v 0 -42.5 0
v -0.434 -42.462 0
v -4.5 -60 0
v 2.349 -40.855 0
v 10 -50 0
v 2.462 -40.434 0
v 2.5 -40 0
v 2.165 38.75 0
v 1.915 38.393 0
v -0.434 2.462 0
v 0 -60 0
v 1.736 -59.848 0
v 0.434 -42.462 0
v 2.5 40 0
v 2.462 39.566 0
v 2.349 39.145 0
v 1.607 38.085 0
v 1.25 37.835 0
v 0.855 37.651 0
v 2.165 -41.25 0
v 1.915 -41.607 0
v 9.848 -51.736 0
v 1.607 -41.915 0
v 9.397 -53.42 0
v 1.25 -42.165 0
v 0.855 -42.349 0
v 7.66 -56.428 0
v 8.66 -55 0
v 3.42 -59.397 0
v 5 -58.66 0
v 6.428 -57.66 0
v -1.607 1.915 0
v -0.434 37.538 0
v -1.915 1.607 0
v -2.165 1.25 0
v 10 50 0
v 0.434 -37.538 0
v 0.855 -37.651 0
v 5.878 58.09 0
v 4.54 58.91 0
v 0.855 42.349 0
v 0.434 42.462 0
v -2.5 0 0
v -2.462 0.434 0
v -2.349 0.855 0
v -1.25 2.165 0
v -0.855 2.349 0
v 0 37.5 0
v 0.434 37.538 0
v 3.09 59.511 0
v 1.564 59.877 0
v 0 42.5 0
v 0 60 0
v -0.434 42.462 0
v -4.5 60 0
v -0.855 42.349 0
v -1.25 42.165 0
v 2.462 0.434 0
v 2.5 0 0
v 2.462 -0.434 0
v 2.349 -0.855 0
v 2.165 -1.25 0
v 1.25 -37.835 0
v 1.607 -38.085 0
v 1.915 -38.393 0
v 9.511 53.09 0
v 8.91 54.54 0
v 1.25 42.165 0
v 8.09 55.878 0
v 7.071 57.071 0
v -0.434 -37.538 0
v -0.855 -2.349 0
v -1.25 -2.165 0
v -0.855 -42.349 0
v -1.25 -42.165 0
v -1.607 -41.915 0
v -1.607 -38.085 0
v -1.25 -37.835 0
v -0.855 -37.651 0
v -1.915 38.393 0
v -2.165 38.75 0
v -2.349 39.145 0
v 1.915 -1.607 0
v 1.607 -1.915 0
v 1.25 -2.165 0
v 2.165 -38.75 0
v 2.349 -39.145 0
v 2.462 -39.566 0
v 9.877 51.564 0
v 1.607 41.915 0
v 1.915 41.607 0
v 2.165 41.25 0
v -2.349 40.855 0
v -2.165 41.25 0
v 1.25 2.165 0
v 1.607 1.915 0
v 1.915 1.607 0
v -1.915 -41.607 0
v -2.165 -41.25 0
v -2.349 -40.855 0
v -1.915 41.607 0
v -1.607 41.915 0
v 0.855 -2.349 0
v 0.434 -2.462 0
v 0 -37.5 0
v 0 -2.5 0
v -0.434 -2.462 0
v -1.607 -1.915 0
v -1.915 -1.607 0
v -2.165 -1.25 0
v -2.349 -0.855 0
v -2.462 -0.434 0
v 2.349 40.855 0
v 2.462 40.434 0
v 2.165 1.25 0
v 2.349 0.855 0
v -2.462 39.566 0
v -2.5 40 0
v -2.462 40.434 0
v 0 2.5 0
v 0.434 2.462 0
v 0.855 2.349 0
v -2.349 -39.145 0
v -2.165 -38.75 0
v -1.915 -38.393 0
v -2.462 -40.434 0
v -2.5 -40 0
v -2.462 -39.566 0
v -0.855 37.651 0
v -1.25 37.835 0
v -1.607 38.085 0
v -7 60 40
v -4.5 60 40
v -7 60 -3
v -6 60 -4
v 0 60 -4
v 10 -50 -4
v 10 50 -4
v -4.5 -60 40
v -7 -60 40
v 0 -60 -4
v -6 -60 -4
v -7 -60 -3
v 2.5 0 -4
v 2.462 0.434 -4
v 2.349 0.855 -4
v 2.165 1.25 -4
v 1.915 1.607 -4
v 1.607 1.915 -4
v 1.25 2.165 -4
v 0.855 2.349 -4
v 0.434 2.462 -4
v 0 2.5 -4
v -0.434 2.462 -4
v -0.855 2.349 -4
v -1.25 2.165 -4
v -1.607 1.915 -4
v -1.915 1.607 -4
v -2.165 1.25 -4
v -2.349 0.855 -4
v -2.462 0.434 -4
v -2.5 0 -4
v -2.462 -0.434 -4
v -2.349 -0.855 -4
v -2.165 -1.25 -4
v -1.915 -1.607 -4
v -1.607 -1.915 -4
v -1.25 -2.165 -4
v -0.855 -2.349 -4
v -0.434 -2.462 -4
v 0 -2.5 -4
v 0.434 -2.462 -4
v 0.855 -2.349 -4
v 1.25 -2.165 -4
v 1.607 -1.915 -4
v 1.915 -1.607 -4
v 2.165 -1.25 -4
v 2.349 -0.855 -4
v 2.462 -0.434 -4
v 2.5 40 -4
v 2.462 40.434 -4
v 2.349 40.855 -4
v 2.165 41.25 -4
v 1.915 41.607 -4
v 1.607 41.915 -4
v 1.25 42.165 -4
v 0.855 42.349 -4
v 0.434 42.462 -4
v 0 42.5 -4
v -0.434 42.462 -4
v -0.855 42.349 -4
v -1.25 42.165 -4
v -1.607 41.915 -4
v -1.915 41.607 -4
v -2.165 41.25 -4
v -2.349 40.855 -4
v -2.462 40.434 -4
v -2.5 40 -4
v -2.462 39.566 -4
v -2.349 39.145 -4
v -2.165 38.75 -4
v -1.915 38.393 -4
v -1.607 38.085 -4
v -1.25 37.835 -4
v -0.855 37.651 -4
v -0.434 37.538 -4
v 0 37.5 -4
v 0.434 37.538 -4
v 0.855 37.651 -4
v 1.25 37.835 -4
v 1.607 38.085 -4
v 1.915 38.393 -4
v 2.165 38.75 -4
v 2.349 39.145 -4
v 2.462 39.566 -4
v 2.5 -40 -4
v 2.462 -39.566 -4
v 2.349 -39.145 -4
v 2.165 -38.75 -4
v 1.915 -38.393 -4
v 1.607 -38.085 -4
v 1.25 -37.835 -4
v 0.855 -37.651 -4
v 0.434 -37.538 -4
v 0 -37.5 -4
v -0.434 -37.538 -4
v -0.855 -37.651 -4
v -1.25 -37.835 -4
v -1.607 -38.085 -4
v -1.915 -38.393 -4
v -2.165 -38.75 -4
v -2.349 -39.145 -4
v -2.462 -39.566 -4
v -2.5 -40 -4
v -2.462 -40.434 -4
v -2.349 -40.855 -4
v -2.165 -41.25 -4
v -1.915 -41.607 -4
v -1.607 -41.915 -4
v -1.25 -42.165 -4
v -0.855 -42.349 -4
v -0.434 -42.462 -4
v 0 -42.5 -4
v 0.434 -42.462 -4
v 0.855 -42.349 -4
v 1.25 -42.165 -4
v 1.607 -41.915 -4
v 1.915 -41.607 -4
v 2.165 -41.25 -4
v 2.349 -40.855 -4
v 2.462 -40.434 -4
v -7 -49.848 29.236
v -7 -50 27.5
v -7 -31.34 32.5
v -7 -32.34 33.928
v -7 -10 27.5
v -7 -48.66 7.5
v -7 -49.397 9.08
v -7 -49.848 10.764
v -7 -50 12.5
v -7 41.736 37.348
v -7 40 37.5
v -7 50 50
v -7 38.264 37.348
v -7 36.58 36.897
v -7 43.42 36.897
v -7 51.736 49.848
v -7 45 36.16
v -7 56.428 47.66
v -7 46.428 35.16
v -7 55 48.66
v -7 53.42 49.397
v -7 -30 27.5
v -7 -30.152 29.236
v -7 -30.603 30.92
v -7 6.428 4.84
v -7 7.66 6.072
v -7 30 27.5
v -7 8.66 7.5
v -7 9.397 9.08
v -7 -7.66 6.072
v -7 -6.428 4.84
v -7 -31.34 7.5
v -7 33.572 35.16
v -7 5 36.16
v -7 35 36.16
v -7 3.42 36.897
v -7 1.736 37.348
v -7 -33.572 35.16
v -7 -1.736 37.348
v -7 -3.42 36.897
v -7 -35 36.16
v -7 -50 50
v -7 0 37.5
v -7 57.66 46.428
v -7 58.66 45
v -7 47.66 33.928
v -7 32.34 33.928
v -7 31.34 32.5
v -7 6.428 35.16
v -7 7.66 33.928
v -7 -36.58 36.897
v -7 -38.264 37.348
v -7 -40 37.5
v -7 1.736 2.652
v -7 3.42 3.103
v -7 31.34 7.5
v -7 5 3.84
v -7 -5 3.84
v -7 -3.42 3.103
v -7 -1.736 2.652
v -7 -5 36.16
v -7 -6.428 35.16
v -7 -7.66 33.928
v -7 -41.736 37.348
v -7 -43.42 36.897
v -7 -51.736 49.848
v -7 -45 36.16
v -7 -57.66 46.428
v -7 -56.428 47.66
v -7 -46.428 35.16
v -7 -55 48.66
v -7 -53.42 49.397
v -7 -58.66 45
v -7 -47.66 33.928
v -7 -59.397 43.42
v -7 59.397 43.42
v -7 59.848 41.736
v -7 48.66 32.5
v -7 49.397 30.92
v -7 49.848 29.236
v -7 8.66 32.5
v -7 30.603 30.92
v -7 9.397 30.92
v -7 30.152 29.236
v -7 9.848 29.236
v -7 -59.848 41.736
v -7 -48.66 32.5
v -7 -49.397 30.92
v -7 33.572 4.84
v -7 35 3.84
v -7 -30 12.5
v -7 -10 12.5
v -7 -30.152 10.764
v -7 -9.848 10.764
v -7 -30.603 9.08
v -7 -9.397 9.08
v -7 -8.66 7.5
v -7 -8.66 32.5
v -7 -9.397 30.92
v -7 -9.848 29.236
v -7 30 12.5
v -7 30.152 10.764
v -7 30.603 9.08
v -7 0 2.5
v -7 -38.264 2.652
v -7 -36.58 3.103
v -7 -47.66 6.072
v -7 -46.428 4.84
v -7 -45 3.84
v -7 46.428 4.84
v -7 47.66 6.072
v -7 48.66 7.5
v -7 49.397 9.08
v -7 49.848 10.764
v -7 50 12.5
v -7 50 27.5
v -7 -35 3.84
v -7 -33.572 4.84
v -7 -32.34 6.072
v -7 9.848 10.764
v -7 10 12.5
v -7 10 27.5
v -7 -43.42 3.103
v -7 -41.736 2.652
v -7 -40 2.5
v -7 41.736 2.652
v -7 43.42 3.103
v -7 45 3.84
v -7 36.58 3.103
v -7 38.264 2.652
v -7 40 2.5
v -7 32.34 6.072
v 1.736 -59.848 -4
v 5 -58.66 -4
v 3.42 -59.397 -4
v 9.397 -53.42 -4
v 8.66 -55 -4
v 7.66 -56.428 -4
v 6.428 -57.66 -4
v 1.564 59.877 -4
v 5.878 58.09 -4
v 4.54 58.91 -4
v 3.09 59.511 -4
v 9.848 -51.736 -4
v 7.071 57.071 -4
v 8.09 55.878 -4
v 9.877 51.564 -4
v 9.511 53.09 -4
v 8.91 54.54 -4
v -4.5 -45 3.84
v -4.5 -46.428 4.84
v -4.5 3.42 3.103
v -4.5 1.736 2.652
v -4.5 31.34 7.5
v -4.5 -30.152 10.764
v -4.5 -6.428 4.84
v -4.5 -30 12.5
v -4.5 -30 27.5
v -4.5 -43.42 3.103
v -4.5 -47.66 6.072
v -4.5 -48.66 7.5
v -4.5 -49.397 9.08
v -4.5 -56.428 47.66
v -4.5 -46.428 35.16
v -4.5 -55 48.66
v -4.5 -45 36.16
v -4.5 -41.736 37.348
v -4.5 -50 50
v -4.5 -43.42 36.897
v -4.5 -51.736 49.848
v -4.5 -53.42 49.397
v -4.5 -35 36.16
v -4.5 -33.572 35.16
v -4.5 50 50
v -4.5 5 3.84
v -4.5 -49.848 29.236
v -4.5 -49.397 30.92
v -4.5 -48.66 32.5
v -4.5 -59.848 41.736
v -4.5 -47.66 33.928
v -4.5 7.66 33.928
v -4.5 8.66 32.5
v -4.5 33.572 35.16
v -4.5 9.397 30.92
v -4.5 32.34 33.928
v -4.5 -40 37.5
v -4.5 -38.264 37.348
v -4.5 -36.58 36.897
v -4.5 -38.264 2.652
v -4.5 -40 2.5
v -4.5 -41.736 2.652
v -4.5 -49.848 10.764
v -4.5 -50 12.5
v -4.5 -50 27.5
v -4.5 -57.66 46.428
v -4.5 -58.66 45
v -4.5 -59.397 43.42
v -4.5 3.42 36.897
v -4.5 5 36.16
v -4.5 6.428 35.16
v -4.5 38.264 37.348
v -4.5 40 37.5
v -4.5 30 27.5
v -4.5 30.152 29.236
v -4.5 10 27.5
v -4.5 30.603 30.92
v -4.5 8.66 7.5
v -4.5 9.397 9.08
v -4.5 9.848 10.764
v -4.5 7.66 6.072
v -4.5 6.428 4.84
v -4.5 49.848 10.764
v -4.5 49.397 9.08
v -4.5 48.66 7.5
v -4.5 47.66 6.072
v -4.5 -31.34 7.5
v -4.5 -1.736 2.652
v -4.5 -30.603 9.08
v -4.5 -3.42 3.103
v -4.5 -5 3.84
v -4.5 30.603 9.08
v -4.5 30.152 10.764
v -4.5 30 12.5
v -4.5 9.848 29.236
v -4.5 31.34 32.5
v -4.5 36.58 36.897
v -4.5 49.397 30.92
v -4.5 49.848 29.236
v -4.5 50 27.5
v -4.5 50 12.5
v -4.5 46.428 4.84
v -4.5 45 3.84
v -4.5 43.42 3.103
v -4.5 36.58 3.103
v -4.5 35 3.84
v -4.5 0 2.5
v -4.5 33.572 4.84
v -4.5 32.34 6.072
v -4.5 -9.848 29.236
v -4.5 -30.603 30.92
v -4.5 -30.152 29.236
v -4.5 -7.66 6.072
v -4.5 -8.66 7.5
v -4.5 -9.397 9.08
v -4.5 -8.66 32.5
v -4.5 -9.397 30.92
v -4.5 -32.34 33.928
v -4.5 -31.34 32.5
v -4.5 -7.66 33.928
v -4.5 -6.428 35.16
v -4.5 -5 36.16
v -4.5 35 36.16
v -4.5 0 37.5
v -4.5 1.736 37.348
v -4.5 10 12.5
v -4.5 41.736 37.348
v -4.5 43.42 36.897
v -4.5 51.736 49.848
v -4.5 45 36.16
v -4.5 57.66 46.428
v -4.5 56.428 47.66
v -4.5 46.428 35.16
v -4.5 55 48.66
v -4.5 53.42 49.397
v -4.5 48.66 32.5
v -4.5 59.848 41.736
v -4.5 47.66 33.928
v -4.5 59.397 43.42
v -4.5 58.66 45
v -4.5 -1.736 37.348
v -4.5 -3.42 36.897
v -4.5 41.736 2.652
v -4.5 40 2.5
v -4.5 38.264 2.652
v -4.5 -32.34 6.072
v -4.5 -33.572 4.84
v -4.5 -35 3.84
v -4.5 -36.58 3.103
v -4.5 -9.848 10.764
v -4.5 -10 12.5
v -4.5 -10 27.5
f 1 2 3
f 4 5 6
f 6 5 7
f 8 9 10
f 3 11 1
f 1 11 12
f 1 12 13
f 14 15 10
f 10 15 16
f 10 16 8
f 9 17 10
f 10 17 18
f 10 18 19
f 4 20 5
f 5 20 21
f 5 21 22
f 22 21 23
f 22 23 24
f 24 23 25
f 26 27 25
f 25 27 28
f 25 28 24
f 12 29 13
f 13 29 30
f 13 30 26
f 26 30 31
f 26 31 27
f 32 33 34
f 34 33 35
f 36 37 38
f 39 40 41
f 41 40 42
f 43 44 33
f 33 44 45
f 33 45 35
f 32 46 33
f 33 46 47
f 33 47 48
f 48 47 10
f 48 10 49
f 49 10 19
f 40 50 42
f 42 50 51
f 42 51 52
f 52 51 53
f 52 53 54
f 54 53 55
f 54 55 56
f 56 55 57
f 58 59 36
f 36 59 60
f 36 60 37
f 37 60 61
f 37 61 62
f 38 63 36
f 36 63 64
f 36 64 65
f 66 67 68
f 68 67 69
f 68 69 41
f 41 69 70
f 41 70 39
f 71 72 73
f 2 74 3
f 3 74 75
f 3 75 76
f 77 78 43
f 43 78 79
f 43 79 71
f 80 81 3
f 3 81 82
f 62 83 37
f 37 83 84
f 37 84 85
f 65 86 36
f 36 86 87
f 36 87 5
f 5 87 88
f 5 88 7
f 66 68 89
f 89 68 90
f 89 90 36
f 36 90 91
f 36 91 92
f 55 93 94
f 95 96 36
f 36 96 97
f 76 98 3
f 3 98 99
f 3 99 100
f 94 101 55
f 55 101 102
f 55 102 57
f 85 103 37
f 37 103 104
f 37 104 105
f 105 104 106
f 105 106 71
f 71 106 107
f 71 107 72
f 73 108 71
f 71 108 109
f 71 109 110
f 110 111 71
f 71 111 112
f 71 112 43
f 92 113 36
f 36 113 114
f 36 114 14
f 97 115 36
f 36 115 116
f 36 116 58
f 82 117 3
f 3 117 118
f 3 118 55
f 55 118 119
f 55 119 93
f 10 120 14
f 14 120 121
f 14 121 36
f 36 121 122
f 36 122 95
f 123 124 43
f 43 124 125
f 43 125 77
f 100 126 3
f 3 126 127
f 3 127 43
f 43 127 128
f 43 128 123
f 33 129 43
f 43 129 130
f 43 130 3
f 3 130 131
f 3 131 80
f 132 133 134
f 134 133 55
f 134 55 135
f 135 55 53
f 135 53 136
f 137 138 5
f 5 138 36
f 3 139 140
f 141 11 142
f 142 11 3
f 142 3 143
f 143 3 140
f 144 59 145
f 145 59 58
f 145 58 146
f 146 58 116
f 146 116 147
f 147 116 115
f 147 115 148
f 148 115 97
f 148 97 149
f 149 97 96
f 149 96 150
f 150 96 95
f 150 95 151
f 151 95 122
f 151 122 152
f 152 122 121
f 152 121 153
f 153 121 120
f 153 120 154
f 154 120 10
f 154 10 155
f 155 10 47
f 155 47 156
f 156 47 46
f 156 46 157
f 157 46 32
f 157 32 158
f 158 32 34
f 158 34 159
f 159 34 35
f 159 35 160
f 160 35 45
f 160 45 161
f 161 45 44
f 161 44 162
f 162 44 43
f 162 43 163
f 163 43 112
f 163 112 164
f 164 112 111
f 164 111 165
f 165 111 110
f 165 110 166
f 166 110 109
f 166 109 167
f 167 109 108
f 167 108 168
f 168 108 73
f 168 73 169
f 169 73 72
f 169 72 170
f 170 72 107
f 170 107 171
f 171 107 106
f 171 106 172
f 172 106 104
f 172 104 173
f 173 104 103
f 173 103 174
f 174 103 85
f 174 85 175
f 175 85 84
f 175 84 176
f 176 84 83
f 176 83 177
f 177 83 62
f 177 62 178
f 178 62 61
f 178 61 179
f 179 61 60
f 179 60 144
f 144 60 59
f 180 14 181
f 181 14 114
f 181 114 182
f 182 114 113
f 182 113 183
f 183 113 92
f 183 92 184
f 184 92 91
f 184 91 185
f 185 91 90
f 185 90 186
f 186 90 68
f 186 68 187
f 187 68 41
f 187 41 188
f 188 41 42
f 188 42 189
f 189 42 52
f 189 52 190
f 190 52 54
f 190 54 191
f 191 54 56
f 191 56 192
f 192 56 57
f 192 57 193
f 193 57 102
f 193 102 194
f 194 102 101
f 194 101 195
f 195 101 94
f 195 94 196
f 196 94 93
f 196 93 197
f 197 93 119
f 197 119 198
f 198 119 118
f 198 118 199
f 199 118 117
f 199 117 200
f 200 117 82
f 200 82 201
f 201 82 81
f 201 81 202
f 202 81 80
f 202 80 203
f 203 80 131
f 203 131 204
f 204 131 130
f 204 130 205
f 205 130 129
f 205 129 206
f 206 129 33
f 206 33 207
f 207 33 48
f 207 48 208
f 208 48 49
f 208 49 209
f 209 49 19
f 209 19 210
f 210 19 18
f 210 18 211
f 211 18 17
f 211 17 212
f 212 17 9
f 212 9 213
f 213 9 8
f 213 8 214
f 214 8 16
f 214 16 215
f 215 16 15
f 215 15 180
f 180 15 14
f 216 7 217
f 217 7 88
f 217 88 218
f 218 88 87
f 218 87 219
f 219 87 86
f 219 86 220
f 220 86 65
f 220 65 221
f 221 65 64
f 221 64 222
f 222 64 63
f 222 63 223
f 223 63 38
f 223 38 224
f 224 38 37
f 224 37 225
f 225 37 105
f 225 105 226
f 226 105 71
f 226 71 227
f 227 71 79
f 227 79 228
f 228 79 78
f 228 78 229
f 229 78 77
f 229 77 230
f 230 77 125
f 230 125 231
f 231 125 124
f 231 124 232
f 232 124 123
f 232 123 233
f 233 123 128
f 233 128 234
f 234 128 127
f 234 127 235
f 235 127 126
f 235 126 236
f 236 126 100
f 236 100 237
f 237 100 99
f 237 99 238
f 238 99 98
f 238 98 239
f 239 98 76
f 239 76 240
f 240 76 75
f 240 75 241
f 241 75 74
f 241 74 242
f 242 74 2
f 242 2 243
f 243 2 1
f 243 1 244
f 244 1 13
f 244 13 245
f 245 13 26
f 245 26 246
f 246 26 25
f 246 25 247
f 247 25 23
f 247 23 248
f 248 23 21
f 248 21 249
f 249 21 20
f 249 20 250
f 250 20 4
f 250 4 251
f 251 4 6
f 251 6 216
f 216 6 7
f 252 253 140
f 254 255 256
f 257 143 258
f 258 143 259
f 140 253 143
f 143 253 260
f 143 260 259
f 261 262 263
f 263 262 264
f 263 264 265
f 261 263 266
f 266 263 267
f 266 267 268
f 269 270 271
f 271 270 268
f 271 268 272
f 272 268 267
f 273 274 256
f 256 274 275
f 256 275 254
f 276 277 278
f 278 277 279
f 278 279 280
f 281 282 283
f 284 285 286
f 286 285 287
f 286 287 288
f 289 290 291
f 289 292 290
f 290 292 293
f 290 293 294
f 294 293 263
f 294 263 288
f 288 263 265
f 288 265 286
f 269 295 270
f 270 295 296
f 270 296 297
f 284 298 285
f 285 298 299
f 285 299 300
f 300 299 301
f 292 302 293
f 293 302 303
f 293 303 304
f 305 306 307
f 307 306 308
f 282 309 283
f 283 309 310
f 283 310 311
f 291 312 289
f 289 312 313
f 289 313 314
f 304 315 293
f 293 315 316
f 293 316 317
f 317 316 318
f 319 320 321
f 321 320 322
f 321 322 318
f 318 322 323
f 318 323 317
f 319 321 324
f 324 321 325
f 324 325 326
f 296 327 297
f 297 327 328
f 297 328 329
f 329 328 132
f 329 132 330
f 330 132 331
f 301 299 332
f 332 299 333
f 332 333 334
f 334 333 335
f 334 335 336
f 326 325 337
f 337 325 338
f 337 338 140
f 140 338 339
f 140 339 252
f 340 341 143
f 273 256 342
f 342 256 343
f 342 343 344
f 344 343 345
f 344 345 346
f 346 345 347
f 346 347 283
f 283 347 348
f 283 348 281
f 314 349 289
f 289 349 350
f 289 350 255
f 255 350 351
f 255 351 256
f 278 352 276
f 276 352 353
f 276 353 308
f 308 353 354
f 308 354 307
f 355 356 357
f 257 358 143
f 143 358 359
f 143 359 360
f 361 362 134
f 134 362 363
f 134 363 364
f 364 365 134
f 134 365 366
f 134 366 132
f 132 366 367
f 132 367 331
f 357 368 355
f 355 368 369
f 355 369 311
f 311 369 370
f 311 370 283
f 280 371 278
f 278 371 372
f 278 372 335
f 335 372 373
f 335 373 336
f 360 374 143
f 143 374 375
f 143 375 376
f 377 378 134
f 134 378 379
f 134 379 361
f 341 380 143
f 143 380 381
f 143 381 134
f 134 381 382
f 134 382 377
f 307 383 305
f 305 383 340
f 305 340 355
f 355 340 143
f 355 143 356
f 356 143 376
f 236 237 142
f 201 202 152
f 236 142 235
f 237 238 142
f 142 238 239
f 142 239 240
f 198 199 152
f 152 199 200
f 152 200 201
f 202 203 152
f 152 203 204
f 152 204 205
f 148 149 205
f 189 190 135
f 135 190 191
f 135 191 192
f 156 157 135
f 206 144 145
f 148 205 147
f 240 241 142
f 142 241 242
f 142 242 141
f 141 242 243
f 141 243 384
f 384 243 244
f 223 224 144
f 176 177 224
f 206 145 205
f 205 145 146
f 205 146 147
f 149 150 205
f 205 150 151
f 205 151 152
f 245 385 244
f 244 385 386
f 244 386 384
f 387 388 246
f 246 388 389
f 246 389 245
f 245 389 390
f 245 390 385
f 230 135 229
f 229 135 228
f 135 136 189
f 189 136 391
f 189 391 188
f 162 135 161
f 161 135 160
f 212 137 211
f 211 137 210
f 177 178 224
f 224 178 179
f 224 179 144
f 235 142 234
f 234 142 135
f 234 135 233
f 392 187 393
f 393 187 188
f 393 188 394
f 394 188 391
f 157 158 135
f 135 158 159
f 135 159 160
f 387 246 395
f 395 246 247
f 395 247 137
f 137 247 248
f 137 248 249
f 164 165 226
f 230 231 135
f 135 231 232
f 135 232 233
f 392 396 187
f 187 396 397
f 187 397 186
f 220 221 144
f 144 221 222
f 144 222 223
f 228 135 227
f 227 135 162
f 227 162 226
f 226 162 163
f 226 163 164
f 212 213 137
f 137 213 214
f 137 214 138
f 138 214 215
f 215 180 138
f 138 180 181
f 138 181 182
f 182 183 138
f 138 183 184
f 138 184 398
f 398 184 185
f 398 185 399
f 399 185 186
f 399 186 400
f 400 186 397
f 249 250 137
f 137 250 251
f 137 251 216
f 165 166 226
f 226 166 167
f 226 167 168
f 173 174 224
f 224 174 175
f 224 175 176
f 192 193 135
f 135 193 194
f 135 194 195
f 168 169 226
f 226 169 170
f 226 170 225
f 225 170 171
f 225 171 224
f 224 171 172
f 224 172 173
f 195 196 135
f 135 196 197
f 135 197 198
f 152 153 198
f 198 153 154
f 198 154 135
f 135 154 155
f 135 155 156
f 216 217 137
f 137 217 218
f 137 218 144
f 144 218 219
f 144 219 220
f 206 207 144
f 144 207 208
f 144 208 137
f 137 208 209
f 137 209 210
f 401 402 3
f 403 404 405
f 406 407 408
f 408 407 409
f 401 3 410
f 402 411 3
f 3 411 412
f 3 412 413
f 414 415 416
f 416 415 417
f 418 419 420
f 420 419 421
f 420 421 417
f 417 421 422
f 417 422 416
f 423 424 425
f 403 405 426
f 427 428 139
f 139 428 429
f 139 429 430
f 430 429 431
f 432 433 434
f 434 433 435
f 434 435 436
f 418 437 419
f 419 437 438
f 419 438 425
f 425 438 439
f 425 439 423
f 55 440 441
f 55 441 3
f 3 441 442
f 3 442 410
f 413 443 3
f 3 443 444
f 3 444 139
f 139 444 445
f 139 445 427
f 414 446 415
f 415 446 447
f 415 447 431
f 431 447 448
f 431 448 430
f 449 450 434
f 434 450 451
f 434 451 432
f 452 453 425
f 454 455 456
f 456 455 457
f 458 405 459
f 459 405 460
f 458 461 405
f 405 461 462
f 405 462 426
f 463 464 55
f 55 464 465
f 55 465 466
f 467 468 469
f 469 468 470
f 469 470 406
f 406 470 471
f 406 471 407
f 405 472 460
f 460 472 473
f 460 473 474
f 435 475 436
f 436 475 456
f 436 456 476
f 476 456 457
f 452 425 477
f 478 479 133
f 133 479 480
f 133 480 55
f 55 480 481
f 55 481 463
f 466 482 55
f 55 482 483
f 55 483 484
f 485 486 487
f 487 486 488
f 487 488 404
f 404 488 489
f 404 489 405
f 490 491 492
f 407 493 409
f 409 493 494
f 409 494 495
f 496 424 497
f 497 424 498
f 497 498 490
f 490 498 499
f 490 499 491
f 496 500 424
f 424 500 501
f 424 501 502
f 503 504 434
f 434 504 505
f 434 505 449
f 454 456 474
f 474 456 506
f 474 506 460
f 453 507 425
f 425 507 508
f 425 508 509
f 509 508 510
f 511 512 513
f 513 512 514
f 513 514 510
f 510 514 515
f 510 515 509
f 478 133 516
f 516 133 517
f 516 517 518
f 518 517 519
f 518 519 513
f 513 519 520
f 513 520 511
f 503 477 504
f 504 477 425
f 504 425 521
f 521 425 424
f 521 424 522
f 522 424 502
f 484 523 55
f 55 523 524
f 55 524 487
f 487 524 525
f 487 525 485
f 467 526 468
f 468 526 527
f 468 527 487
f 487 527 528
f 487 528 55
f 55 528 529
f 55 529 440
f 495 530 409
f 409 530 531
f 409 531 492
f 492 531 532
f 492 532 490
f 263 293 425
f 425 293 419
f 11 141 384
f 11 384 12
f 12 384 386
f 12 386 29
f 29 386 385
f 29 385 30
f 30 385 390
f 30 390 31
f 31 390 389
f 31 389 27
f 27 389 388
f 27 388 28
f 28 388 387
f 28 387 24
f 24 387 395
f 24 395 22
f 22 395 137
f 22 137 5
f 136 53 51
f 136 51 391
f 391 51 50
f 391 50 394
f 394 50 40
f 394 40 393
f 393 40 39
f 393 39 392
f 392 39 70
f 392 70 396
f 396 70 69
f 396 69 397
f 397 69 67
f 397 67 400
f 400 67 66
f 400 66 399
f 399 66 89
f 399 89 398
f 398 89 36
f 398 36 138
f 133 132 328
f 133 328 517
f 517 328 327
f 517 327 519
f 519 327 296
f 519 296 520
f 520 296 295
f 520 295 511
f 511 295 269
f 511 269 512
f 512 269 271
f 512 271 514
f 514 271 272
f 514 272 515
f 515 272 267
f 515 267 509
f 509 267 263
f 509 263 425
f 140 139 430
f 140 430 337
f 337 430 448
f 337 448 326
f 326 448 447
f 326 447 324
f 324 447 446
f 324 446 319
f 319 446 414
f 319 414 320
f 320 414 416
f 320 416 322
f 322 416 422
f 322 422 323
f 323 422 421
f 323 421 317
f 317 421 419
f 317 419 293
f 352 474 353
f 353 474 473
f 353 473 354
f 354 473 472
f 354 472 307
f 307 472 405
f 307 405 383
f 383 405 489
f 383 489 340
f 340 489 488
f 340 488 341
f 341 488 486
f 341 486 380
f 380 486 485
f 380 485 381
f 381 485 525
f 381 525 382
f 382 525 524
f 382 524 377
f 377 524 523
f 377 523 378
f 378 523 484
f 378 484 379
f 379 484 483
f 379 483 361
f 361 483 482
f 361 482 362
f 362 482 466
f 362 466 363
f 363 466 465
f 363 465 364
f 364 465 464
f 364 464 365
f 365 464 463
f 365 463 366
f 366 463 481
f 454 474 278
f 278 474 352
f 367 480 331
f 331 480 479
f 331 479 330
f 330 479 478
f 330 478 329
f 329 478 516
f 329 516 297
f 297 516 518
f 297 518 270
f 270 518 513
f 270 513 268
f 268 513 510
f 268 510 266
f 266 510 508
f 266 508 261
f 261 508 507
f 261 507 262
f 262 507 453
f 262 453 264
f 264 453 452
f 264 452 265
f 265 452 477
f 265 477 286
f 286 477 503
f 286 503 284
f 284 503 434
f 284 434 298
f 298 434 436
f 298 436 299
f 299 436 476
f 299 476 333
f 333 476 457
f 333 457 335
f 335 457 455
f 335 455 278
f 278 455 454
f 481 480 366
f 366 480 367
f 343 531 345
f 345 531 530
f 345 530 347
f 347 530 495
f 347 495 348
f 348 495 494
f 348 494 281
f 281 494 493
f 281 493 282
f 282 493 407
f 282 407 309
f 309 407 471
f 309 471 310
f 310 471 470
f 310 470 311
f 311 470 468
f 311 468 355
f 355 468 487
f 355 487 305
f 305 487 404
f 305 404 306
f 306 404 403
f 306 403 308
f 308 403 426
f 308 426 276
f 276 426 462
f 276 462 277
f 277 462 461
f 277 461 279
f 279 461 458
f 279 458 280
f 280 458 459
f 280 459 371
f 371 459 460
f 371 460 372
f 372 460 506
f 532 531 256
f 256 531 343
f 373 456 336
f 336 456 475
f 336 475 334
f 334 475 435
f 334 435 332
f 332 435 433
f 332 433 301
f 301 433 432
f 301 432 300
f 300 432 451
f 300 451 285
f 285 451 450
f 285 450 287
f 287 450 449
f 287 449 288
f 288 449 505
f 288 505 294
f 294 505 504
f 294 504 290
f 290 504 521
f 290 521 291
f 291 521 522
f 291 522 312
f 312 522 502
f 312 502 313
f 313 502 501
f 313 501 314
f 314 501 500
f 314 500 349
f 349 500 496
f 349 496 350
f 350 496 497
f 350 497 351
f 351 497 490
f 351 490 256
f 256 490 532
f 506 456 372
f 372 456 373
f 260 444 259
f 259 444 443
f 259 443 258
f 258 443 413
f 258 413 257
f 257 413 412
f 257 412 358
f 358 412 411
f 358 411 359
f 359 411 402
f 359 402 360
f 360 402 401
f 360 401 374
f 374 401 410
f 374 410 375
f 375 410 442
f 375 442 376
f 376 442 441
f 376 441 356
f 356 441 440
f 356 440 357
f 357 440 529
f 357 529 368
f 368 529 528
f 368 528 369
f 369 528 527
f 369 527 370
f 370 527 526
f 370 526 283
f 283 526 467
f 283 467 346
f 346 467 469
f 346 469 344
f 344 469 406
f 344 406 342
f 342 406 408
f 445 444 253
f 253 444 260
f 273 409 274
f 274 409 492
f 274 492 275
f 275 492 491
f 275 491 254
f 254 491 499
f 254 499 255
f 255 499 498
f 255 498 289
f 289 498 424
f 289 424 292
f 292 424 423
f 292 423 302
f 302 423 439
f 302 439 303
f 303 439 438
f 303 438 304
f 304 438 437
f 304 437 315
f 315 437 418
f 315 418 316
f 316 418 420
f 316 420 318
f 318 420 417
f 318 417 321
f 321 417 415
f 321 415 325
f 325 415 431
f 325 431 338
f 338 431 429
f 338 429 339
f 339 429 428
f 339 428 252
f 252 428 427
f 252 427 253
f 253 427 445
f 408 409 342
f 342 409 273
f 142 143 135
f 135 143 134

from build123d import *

# Parameters (mm, degrees)
SKETCH_1_W          = 17
SKETCH_1_H          = 120
SKETCH_1_R          = 2.5
EXTRUDE_1_DEPTH     = 4
SKETCH_1_3_W        = 2.5
SKETCH_1_3_H        = 120
EXTRUDE_2_DEPTH     = 50
FILLET_1_R          = 10
CUT_EXTRUDE_1_DEPTH = 50
CHAMFER_1_SIZE      = 1


with BuildPart() as part:
    # 스케치1 → 보스-돌출1 (new body)
    with BuildSketch(Plane.XY):
        with Locations((1.5, 0)):
            Rectangle(SKETCH_1_W, SKETCH_1_H)
        with Locations((0, 40)):
            Circle(SKETCH_1_R, mode=Mode.SUBTRACT)
        with Locations((0, -40)):
            Circle(SKETCH_1_R, mode=Mode.SUBTRACT)
        Circle(SKETCH_1_R, mode=Mode.SUBTRACT)
    extrude(amount=-EXTRUDE_1_DEPTH)

    # 스케치1<3> → 보스-돌출2 (add)
    with BuildSketch(Plane.XY):
        with Locations((-5.75, 0)):
            Rectangle(SKETCH_1_3_W, SKETCH_1_3_H)
    extrude(amount=EXTRUDE_2_DEPTH)

    # 필렛1
    fillet_1_edges = [part.edges().sort_by_distance(p)[0] for p in [
        (10, -60, -2),
        (10, 60, -2),
        (-5.75, 60, 50),
        (-5.75, -60, 50),
    ]]
    fillet(fillet_1_edges, radius=FILLET_1_R)

    # 스케치2 → 컷-돌출1 (cut)
    with BuildSketch(Plane(origin=(-4.5, 0, 0), x_dir=(0, 0, -1), z_dir=(1, 0, 0))):
        with BuildLine():
            Line((-12.5, -50), (-27.5, -50))
            ThreePointArc((-27.5, -50), (-37.5, -40), (-27.5, -30))
            Line((-27.5, -30), (-12.5, -30))
            ThreePointArc((-12.5, -30), (-2.5, -40), (-12.5, -50))
        make_face()
        with BuildLine():
            Line((-12.5, -10), (-27.5, -10))
            ThreePointArc((-27.5, -10), (-37.5, 0), (-27.5, 10))
            Line((-27.5, 10), (-12.5, 10))
            ThreePointArc((-12.5, 10), (-2.5, 0), (-12.5, -10))
        make_face()
        with BuildLine():
            Line((-12.5, 30), (-27.5, 30))
            ThreePointArc((-27.5, 30), (-37.5, 40), (-27.5, 50))
            Line((-27.5, 50), (-12.5, 50))
            ThreePointArc((-12.5, 50), (-2.5, 40), (-12.5, 30))
        make_face()
    extrude(amount=-CUT_EXTRUDE_1_DEPTH, mode=Mode.SUBTRACT)

    # 모따기1
    chamfer_1_edges = [part.edges().sort_by_distance(p)[0] for p in [
        (-7, 0, -4),
    ]]
    chamfer(chamfer_1_edges, length=CHAMFER_1_SIZE)


solid = part.part
